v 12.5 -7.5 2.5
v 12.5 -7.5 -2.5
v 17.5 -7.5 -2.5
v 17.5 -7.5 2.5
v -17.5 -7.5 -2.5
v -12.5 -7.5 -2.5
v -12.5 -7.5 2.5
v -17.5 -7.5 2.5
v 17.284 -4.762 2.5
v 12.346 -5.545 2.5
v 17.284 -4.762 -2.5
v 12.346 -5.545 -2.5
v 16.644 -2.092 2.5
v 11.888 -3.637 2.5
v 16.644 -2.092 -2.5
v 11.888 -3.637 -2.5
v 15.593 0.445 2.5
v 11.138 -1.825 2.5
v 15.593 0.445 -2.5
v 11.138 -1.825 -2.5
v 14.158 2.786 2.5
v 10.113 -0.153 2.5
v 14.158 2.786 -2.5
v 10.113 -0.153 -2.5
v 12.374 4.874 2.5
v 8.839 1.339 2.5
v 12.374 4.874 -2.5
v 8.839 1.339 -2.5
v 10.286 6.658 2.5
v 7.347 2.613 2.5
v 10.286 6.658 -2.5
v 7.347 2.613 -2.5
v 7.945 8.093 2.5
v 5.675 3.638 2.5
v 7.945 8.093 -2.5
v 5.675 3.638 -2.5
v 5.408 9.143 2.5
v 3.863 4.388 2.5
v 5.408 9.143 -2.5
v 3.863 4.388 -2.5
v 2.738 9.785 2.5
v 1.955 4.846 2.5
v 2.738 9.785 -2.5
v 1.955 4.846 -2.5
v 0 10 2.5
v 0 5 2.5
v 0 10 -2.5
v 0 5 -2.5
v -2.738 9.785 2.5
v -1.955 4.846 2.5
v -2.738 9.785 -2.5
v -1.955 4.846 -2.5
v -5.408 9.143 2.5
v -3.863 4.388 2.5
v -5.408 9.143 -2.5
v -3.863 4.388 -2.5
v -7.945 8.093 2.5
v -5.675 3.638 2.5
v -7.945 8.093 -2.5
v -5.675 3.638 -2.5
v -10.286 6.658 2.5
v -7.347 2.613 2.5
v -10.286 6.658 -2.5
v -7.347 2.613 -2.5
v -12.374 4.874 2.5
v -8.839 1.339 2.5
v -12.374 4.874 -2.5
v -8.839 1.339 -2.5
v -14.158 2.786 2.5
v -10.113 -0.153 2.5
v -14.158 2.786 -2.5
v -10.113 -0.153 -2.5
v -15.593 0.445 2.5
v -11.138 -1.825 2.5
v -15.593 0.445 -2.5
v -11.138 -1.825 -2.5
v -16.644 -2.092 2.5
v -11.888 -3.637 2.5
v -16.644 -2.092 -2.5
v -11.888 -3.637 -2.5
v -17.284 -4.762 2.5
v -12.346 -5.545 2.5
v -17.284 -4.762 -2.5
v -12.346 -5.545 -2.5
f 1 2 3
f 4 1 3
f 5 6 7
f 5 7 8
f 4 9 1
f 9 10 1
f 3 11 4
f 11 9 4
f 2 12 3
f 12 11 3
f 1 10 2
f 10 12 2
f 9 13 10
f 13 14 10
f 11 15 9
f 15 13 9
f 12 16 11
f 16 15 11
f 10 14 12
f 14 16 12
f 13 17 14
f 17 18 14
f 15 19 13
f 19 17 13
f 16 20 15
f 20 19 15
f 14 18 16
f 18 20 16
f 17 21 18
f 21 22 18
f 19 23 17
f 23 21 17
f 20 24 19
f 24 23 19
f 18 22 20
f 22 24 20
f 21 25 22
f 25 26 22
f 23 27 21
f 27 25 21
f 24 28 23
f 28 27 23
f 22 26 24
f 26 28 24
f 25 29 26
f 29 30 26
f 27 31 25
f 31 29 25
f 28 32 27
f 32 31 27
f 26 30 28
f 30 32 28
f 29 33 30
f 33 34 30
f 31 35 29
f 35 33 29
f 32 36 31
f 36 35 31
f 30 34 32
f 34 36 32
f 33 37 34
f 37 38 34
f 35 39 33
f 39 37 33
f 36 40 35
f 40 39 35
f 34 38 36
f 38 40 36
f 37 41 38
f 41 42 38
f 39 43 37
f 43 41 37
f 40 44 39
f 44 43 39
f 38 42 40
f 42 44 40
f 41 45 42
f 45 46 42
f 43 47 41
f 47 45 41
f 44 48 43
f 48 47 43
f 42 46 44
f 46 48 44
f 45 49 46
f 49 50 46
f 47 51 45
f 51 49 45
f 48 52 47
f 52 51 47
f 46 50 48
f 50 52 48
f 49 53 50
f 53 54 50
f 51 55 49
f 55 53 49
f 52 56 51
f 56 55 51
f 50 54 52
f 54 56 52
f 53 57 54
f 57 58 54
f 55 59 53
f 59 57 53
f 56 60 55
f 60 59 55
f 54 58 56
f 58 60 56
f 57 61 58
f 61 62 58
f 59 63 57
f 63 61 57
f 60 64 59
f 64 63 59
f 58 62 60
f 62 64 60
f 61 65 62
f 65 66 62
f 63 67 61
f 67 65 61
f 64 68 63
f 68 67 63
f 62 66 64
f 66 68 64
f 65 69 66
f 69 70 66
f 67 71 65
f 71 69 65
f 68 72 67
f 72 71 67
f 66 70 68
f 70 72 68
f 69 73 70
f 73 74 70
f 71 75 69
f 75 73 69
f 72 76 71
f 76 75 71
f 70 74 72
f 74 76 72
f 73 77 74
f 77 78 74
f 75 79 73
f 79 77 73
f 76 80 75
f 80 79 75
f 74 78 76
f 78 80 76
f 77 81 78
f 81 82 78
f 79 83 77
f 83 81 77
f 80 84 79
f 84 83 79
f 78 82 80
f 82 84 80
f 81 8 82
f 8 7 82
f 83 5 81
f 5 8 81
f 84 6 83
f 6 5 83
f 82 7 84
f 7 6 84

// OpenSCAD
$fn = 100;
translate(v = [0, -7.5, 0])
{
  rotate_extrude(angle = 180, convexity = 4, $fn = 40)
  {
    translate(v = [15, 0, 0])
    {
      square(size = [5, 5], center = true);
    }
  }
}
